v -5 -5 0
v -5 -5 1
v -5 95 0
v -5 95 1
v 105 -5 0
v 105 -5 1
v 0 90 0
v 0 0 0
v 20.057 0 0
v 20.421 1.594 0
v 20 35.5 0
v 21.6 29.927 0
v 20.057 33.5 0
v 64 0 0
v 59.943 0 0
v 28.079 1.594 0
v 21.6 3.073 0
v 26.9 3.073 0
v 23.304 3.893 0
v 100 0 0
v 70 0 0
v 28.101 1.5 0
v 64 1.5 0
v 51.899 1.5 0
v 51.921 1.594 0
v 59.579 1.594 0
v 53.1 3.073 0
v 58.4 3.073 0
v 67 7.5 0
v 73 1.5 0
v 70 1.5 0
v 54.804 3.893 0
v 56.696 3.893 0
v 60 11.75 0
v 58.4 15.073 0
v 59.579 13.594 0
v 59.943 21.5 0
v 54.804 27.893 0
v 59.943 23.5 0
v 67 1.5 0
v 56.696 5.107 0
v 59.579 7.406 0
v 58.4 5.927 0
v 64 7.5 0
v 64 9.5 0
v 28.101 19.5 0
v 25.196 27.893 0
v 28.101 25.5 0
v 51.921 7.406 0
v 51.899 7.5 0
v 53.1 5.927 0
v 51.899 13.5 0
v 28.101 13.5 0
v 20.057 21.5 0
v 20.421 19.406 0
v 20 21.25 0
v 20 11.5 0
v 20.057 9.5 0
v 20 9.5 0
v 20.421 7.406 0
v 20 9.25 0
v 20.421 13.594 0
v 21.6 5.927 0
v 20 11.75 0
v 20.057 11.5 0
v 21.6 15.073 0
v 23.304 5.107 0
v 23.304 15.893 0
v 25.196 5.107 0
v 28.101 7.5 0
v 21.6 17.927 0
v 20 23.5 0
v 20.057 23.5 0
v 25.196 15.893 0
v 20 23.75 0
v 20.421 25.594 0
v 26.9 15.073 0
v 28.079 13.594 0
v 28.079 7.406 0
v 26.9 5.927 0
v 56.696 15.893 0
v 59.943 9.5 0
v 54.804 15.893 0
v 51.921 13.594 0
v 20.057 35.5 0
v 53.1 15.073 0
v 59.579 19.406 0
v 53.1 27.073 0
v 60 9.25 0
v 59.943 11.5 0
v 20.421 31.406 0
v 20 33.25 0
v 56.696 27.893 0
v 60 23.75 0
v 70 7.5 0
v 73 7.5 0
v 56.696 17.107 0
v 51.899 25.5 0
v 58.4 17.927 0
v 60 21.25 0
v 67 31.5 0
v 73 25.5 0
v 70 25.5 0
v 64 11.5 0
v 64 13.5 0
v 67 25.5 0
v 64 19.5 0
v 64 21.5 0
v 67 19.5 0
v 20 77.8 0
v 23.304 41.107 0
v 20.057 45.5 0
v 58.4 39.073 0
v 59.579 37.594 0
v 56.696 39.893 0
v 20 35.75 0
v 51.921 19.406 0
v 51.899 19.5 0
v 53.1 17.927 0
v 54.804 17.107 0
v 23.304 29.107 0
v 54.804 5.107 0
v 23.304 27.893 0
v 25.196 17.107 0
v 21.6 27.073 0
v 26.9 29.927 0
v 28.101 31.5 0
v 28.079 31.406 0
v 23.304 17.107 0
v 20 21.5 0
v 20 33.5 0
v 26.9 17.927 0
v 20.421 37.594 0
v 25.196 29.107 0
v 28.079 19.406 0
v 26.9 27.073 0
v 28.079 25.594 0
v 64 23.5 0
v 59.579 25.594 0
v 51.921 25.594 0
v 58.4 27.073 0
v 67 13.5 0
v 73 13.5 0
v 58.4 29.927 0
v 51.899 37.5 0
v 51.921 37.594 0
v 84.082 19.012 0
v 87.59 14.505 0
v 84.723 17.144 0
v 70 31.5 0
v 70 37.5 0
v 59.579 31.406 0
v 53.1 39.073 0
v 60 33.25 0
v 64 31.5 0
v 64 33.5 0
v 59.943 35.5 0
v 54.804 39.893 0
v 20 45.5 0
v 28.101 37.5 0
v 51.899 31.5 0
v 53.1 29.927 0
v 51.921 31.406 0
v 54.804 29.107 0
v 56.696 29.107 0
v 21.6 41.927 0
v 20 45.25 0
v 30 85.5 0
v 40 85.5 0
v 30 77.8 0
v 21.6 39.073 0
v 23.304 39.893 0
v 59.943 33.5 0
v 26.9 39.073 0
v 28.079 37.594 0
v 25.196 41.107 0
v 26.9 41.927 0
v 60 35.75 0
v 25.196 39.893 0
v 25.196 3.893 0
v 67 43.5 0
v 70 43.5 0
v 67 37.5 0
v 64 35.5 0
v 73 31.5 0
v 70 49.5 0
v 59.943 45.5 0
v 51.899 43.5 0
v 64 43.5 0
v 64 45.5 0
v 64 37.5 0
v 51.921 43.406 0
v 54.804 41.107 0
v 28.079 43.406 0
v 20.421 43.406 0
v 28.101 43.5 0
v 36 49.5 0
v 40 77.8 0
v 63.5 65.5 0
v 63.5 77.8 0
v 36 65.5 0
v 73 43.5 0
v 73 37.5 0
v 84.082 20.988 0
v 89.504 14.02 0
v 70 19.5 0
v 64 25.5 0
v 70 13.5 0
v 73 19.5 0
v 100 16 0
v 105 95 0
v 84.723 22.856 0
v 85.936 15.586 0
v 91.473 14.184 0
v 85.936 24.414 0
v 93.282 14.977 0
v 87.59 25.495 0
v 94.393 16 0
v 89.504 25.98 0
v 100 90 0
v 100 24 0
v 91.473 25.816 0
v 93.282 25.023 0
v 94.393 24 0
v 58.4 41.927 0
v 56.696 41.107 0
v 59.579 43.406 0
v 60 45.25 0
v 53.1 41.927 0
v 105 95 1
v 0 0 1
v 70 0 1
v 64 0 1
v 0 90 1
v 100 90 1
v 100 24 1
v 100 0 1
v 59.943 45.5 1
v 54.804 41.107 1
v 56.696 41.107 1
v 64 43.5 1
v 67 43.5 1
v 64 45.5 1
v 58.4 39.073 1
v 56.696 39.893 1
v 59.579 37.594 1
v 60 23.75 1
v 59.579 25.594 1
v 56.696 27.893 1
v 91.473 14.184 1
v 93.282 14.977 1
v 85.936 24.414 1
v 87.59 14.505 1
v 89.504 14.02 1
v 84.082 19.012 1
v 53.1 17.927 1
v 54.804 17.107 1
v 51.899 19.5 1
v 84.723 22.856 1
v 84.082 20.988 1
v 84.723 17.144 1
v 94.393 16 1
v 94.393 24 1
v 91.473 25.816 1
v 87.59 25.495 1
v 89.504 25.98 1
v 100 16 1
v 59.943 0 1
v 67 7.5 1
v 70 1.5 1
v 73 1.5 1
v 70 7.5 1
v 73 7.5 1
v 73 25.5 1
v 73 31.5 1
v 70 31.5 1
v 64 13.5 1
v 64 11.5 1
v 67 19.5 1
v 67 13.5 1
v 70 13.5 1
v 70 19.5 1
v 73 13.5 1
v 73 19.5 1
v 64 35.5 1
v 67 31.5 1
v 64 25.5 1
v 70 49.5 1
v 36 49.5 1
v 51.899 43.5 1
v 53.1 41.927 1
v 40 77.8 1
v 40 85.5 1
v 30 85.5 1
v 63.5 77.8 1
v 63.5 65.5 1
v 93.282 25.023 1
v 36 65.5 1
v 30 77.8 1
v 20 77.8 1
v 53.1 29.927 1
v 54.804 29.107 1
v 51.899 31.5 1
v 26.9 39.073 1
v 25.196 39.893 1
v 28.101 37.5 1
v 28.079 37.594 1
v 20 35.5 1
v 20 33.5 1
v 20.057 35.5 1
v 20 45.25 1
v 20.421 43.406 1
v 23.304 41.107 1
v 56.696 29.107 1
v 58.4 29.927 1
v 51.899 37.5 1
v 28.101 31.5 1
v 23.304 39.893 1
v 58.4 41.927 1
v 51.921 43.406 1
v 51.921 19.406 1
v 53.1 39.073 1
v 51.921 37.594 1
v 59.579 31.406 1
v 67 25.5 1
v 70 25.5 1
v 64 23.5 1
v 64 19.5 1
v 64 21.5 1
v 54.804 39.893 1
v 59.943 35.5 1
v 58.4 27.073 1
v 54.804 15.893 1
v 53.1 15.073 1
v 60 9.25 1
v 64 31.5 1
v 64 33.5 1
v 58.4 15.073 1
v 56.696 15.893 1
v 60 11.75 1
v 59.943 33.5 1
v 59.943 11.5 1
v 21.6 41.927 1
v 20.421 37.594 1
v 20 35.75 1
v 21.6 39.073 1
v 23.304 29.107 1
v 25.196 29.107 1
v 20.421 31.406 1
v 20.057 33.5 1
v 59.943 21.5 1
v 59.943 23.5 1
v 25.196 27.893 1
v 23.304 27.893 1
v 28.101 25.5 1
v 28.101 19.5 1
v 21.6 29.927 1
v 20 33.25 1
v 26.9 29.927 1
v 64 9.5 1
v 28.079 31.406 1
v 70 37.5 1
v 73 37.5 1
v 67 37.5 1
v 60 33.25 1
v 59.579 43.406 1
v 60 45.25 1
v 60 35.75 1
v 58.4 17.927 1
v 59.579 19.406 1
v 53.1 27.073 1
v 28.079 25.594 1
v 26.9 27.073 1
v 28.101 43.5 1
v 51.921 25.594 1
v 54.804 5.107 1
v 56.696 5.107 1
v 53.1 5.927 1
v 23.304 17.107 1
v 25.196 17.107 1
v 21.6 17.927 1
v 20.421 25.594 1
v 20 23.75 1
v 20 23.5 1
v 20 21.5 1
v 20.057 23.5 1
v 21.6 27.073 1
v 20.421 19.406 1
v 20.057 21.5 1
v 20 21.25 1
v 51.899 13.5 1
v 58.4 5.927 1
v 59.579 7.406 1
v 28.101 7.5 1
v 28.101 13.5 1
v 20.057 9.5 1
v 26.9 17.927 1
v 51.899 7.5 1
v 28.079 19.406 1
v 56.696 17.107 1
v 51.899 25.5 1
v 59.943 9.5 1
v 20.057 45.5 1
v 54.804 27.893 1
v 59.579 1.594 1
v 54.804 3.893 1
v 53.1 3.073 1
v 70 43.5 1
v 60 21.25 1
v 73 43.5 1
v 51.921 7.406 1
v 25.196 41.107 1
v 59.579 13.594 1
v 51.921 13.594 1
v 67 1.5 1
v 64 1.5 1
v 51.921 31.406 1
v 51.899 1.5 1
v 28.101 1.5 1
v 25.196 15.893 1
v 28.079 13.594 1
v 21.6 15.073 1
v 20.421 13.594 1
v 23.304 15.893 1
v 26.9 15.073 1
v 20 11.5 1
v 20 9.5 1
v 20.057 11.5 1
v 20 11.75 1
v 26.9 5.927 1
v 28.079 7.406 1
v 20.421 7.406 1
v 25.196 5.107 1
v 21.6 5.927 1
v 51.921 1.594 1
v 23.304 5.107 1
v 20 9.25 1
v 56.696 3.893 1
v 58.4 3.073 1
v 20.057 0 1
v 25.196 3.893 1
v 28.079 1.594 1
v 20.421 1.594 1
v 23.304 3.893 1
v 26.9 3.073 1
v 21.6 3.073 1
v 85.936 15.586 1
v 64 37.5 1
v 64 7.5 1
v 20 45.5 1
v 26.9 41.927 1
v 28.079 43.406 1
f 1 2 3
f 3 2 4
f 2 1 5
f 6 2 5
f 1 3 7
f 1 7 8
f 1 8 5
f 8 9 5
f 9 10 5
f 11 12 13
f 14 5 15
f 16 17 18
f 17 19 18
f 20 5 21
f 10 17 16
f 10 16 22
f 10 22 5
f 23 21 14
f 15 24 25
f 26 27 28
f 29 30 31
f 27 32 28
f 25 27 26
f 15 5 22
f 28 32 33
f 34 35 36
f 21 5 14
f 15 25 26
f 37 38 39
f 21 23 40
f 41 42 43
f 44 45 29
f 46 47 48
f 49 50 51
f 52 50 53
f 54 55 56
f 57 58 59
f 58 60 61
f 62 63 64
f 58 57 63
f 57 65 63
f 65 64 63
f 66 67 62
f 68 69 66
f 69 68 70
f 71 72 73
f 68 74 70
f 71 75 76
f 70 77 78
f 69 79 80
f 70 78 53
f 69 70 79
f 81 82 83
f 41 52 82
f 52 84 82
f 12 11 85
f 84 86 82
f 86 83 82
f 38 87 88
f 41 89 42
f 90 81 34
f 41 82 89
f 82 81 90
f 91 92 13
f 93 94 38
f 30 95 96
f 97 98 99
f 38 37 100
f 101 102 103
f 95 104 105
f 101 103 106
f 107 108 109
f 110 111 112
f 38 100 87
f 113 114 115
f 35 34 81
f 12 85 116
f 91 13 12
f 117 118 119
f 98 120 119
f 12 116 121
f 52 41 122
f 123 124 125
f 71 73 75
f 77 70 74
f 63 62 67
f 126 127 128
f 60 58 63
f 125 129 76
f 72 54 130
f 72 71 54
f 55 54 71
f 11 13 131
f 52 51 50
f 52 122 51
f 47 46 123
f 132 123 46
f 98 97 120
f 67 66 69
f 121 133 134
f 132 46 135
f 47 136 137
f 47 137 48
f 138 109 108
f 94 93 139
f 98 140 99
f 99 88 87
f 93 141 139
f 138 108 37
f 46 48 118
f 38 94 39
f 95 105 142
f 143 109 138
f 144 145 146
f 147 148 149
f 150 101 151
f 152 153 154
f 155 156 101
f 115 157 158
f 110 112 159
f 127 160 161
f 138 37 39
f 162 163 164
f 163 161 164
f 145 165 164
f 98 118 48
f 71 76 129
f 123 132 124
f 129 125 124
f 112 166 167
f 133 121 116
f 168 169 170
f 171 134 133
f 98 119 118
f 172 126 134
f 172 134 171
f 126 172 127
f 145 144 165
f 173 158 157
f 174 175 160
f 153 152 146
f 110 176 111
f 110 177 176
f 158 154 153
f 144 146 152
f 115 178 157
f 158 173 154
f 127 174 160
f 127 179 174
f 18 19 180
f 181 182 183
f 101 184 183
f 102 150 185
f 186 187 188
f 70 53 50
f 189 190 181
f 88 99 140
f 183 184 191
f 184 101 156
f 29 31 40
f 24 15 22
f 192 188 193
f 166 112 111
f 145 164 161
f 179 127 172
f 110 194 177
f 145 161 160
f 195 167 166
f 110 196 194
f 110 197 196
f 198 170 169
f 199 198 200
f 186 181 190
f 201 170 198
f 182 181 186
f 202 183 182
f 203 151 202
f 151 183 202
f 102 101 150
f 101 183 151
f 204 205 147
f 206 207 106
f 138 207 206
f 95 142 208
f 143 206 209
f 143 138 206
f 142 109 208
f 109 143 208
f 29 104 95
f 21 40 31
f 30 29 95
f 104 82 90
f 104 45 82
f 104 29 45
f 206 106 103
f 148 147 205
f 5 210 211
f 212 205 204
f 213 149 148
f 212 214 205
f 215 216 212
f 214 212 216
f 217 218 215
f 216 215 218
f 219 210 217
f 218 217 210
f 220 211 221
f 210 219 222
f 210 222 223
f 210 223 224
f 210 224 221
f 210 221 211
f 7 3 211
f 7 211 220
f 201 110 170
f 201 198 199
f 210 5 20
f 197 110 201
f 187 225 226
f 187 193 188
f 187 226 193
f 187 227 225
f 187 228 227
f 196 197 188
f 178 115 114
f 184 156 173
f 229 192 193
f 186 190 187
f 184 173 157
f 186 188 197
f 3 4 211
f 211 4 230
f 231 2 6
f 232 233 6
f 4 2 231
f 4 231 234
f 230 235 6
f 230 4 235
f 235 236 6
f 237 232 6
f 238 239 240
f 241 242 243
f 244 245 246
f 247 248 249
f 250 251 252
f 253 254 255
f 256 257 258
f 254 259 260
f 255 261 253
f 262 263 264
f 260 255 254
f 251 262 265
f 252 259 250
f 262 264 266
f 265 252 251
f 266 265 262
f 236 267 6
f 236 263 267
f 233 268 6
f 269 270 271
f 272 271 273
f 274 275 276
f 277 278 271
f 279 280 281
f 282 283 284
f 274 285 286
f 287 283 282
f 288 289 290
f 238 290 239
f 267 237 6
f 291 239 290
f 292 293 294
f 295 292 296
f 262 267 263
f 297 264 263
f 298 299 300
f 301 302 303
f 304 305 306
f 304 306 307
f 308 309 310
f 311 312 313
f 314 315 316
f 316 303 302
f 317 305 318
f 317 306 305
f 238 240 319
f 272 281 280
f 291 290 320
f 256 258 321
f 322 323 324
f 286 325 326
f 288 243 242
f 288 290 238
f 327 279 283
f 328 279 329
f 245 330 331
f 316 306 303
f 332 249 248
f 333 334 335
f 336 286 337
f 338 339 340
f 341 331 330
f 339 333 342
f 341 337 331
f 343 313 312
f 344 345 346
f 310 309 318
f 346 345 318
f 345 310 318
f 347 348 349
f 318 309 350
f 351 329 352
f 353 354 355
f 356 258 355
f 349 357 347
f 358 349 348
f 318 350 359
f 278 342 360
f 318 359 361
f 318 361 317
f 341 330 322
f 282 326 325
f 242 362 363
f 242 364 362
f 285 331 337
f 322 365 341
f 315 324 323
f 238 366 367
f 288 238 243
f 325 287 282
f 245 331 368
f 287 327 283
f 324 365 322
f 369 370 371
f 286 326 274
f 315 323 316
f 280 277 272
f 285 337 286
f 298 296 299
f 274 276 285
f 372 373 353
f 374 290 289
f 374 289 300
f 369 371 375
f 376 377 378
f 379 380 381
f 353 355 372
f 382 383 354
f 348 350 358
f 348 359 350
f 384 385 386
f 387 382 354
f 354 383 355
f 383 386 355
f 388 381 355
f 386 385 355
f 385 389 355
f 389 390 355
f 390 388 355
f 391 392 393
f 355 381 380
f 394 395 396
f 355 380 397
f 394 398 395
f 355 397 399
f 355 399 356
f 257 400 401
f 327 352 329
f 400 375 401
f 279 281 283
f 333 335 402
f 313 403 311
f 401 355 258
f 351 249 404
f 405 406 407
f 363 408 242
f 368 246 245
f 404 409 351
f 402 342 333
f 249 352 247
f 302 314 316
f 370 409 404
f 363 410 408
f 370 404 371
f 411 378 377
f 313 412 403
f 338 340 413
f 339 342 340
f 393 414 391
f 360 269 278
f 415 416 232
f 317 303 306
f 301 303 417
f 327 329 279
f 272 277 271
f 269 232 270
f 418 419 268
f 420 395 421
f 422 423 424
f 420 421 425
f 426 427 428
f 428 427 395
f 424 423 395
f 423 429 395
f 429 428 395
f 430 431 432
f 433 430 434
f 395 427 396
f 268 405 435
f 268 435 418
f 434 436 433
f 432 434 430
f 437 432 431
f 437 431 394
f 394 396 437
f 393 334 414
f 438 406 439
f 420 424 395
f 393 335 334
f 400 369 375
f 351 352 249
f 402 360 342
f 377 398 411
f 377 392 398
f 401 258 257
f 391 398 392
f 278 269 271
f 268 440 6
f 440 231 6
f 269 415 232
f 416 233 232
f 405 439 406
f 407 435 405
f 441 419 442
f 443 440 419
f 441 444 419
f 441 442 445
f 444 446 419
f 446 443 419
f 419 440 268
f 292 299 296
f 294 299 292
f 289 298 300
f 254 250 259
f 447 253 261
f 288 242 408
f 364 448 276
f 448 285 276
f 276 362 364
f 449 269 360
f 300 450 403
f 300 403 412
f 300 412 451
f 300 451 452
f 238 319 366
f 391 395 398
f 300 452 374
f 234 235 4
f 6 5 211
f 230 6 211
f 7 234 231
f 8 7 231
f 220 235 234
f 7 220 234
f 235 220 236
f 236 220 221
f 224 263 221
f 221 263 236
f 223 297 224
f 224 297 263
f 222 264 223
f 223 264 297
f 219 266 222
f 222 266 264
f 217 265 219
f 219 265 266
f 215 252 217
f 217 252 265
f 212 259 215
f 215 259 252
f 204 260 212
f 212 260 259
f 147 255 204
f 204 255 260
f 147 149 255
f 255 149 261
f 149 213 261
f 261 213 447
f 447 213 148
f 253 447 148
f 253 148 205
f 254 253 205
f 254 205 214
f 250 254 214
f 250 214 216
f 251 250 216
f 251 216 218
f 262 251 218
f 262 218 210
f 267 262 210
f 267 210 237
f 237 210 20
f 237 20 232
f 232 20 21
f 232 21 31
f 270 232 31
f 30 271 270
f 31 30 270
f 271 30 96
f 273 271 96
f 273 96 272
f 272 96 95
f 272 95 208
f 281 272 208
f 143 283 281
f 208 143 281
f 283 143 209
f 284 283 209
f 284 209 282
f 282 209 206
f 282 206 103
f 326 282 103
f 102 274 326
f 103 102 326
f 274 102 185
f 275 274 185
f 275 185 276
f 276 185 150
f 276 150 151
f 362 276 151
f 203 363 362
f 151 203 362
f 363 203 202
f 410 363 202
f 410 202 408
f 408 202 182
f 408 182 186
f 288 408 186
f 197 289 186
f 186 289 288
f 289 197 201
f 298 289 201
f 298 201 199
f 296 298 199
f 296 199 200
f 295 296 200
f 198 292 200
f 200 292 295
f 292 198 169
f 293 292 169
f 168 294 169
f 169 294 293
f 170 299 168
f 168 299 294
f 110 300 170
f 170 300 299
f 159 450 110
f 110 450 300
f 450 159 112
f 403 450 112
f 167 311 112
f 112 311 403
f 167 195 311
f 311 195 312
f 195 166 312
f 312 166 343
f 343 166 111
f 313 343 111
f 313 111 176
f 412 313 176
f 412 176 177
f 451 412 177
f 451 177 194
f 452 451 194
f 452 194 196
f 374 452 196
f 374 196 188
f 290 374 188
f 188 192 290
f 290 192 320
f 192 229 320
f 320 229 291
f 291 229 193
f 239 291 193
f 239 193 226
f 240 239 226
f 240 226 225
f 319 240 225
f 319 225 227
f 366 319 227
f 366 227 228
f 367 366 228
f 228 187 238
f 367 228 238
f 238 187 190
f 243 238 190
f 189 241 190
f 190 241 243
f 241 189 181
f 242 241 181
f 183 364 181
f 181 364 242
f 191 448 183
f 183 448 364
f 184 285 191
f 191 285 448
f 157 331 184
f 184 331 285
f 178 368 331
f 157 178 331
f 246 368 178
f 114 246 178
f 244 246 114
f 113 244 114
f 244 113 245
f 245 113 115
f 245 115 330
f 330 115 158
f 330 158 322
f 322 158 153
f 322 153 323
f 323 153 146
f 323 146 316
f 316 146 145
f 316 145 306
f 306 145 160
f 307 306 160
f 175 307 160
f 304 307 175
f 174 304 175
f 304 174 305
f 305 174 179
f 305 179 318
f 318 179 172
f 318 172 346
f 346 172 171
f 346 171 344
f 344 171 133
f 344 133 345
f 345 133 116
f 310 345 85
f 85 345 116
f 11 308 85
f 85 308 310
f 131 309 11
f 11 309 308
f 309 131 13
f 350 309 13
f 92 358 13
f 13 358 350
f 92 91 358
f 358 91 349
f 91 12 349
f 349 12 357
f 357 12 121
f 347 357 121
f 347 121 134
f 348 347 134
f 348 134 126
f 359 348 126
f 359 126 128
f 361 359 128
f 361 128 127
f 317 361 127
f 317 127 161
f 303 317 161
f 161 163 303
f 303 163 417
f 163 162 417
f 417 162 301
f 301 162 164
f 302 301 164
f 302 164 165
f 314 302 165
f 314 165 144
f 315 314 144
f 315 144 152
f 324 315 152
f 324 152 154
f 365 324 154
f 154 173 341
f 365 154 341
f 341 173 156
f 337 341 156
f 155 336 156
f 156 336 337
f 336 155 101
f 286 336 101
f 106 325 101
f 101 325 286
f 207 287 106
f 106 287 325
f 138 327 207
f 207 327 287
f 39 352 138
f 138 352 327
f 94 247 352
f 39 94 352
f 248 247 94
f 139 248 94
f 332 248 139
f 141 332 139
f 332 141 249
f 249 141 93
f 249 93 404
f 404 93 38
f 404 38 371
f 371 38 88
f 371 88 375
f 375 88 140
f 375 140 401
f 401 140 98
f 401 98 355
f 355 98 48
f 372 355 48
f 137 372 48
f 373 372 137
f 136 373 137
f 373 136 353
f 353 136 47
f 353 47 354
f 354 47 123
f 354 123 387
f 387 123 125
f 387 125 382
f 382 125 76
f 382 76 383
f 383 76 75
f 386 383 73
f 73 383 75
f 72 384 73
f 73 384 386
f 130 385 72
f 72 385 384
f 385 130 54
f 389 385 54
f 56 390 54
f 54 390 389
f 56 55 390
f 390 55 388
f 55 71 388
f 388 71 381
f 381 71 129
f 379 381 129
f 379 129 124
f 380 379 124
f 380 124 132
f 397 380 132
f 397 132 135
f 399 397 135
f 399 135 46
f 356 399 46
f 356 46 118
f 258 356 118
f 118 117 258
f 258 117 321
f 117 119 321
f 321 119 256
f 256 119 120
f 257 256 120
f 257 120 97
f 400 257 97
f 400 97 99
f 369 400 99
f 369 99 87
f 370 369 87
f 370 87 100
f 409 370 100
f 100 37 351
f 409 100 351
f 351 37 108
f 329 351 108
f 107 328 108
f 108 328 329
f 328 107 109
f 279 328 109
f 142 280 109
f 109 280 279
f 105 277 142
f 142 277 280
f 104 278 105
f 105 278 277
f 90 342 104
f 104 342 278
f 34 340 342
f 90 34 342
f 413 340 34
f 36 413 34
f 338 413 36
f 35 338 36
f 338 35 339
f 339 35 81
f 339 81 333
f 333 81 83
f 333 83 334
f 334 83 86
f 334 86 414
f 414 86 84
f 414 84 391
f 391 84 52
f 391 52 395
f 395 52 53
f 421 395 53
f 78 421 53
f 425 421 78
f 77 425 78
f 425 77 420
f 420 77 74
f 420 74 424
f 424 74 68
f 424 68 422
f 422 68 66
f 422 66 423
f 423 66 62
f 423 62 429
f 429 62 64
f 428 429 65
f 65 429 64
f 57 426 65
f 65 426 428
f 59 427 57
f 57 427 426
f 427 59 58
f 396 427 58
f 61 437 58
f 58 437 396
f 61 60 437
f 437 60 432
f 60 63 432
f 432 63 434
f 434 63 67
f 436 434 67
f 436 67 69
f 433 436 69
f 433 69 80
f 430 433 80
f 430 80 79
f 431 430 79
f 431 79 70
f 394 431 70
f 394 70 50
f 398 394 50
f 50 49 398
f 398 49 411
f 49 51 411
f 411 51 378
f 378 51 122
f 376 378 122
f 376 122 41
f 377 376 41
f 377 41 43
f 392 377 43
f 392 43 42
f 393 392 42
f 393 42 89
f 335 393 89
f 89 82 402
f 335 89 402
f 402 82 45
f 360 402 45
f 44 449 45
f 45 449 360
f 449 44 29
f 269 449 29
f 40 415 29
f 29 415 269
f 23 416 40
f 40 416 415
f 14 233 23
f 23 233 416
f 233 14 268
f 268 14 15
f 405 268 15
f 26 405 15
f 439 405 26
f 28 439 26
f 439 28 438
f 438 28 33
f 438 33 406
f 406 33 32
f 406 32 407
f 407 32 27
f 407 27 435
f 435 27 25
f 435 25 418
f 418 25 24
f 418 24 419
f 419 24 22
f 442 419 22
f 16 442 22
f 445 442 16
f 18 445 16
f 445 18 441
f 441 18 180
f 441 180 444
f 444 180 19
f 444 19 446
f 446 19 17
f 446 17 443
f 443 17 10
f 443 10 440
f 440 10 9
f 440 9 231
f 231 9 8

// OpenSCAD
// Flexure for pen holder
mat_th = 39;
z = mat_th*3;
x = 100;
y = 90;
oilite_d = 11;
oilite_l = 15;
// Flexure constraints
flex_r = 4.25;
flex_l = 40;
flex_t = 6;
flex_h = 1;

flex_spacing = 9;

servo_w = 12.3;
servo_h = 27.5;

module flexcut() {
    translate([0,flex_r+flex_h/2,0]) {
        translate([flex_r,0,0]) cylinder(h=x,r=flex_r);
        translate([flex_l-flex_r,0,0]) cylinder(h=x,r=flex_r);
    }
    translate([flex_r, flex_t/2, 0]) cube([flex_l-2*flex_r, flex_r*2 + flex_h - flex_t, z]);
    mirror([0,1,0]) {
    translate([0,flex_r+flex_h/2,0]) {
        translate([flex_r,0,0]) cylinder(h=x,r=flex_r);
        translate([flex_l-flex_r,0,0]) cylinder(h=x,r=flex_r);
    }
    translate([flex_r, flex_t/2, 0]) cube([flex_l-2*flex_r, flex_r*2 + flex_h - flex_t, z]);
    }
}

module flexure() {
difference () {
    translate([0,0,z/3]) cube([x, y, z/3]);
    translate([20,4.5,0])
    {
    flexcut();
    translate([0,12,0]) flexcut();
    translate([0,24,0]) flexcut();
    translate([0,36,0]) flexcut();
    translate([0,-7,0]) cube([flex_l+10,2,z]);
    translate([0,5,0]) cube([flex_l+10,2,z]);
    translate([0,17,0]) cube([flex_l+10,2,z]);
    translate([0,29,0]) cube([flex_l+10,2,z]);
    translate([0,41,0]) cube([flex_l+10,4,z]);
    translate([0,41,0]) cube([16,20+servo_w,z]);
    translate([16,61,0]) cube([servo_h,servo_w,z]);
    translate([10,61,0]) cube([10,20,z]);
    }
    translate([64,-4.5,0])
    {
    cube([6,6,z]);
    translate([0,12,0]) cube([6,6,z]);
    translate([0,24,0]) cube([6,6,z]);
    translate([0,36,0]) cube([6,6,z]);
    translate([0,48,0]) cube([6,6,z]);
    }
    translate([67,1.5,0])
    {
    cube([6,6,z]);
    translate([0,12,0]) cube([6,6,z]);
    translate([0,24,0]) cube([6,6,z]);
    translate([0,36,0]) cube([6,6,z]);
    }
    translate([90,20,0]) cylinder(h=z, r=6);
    translate([90,16,0]) cube([20,8,z]);
}
}

difference() {
translate([-5,-5,0]) cube([110,100,1]);
translate([0,0,-z/2]) flexure();
}
